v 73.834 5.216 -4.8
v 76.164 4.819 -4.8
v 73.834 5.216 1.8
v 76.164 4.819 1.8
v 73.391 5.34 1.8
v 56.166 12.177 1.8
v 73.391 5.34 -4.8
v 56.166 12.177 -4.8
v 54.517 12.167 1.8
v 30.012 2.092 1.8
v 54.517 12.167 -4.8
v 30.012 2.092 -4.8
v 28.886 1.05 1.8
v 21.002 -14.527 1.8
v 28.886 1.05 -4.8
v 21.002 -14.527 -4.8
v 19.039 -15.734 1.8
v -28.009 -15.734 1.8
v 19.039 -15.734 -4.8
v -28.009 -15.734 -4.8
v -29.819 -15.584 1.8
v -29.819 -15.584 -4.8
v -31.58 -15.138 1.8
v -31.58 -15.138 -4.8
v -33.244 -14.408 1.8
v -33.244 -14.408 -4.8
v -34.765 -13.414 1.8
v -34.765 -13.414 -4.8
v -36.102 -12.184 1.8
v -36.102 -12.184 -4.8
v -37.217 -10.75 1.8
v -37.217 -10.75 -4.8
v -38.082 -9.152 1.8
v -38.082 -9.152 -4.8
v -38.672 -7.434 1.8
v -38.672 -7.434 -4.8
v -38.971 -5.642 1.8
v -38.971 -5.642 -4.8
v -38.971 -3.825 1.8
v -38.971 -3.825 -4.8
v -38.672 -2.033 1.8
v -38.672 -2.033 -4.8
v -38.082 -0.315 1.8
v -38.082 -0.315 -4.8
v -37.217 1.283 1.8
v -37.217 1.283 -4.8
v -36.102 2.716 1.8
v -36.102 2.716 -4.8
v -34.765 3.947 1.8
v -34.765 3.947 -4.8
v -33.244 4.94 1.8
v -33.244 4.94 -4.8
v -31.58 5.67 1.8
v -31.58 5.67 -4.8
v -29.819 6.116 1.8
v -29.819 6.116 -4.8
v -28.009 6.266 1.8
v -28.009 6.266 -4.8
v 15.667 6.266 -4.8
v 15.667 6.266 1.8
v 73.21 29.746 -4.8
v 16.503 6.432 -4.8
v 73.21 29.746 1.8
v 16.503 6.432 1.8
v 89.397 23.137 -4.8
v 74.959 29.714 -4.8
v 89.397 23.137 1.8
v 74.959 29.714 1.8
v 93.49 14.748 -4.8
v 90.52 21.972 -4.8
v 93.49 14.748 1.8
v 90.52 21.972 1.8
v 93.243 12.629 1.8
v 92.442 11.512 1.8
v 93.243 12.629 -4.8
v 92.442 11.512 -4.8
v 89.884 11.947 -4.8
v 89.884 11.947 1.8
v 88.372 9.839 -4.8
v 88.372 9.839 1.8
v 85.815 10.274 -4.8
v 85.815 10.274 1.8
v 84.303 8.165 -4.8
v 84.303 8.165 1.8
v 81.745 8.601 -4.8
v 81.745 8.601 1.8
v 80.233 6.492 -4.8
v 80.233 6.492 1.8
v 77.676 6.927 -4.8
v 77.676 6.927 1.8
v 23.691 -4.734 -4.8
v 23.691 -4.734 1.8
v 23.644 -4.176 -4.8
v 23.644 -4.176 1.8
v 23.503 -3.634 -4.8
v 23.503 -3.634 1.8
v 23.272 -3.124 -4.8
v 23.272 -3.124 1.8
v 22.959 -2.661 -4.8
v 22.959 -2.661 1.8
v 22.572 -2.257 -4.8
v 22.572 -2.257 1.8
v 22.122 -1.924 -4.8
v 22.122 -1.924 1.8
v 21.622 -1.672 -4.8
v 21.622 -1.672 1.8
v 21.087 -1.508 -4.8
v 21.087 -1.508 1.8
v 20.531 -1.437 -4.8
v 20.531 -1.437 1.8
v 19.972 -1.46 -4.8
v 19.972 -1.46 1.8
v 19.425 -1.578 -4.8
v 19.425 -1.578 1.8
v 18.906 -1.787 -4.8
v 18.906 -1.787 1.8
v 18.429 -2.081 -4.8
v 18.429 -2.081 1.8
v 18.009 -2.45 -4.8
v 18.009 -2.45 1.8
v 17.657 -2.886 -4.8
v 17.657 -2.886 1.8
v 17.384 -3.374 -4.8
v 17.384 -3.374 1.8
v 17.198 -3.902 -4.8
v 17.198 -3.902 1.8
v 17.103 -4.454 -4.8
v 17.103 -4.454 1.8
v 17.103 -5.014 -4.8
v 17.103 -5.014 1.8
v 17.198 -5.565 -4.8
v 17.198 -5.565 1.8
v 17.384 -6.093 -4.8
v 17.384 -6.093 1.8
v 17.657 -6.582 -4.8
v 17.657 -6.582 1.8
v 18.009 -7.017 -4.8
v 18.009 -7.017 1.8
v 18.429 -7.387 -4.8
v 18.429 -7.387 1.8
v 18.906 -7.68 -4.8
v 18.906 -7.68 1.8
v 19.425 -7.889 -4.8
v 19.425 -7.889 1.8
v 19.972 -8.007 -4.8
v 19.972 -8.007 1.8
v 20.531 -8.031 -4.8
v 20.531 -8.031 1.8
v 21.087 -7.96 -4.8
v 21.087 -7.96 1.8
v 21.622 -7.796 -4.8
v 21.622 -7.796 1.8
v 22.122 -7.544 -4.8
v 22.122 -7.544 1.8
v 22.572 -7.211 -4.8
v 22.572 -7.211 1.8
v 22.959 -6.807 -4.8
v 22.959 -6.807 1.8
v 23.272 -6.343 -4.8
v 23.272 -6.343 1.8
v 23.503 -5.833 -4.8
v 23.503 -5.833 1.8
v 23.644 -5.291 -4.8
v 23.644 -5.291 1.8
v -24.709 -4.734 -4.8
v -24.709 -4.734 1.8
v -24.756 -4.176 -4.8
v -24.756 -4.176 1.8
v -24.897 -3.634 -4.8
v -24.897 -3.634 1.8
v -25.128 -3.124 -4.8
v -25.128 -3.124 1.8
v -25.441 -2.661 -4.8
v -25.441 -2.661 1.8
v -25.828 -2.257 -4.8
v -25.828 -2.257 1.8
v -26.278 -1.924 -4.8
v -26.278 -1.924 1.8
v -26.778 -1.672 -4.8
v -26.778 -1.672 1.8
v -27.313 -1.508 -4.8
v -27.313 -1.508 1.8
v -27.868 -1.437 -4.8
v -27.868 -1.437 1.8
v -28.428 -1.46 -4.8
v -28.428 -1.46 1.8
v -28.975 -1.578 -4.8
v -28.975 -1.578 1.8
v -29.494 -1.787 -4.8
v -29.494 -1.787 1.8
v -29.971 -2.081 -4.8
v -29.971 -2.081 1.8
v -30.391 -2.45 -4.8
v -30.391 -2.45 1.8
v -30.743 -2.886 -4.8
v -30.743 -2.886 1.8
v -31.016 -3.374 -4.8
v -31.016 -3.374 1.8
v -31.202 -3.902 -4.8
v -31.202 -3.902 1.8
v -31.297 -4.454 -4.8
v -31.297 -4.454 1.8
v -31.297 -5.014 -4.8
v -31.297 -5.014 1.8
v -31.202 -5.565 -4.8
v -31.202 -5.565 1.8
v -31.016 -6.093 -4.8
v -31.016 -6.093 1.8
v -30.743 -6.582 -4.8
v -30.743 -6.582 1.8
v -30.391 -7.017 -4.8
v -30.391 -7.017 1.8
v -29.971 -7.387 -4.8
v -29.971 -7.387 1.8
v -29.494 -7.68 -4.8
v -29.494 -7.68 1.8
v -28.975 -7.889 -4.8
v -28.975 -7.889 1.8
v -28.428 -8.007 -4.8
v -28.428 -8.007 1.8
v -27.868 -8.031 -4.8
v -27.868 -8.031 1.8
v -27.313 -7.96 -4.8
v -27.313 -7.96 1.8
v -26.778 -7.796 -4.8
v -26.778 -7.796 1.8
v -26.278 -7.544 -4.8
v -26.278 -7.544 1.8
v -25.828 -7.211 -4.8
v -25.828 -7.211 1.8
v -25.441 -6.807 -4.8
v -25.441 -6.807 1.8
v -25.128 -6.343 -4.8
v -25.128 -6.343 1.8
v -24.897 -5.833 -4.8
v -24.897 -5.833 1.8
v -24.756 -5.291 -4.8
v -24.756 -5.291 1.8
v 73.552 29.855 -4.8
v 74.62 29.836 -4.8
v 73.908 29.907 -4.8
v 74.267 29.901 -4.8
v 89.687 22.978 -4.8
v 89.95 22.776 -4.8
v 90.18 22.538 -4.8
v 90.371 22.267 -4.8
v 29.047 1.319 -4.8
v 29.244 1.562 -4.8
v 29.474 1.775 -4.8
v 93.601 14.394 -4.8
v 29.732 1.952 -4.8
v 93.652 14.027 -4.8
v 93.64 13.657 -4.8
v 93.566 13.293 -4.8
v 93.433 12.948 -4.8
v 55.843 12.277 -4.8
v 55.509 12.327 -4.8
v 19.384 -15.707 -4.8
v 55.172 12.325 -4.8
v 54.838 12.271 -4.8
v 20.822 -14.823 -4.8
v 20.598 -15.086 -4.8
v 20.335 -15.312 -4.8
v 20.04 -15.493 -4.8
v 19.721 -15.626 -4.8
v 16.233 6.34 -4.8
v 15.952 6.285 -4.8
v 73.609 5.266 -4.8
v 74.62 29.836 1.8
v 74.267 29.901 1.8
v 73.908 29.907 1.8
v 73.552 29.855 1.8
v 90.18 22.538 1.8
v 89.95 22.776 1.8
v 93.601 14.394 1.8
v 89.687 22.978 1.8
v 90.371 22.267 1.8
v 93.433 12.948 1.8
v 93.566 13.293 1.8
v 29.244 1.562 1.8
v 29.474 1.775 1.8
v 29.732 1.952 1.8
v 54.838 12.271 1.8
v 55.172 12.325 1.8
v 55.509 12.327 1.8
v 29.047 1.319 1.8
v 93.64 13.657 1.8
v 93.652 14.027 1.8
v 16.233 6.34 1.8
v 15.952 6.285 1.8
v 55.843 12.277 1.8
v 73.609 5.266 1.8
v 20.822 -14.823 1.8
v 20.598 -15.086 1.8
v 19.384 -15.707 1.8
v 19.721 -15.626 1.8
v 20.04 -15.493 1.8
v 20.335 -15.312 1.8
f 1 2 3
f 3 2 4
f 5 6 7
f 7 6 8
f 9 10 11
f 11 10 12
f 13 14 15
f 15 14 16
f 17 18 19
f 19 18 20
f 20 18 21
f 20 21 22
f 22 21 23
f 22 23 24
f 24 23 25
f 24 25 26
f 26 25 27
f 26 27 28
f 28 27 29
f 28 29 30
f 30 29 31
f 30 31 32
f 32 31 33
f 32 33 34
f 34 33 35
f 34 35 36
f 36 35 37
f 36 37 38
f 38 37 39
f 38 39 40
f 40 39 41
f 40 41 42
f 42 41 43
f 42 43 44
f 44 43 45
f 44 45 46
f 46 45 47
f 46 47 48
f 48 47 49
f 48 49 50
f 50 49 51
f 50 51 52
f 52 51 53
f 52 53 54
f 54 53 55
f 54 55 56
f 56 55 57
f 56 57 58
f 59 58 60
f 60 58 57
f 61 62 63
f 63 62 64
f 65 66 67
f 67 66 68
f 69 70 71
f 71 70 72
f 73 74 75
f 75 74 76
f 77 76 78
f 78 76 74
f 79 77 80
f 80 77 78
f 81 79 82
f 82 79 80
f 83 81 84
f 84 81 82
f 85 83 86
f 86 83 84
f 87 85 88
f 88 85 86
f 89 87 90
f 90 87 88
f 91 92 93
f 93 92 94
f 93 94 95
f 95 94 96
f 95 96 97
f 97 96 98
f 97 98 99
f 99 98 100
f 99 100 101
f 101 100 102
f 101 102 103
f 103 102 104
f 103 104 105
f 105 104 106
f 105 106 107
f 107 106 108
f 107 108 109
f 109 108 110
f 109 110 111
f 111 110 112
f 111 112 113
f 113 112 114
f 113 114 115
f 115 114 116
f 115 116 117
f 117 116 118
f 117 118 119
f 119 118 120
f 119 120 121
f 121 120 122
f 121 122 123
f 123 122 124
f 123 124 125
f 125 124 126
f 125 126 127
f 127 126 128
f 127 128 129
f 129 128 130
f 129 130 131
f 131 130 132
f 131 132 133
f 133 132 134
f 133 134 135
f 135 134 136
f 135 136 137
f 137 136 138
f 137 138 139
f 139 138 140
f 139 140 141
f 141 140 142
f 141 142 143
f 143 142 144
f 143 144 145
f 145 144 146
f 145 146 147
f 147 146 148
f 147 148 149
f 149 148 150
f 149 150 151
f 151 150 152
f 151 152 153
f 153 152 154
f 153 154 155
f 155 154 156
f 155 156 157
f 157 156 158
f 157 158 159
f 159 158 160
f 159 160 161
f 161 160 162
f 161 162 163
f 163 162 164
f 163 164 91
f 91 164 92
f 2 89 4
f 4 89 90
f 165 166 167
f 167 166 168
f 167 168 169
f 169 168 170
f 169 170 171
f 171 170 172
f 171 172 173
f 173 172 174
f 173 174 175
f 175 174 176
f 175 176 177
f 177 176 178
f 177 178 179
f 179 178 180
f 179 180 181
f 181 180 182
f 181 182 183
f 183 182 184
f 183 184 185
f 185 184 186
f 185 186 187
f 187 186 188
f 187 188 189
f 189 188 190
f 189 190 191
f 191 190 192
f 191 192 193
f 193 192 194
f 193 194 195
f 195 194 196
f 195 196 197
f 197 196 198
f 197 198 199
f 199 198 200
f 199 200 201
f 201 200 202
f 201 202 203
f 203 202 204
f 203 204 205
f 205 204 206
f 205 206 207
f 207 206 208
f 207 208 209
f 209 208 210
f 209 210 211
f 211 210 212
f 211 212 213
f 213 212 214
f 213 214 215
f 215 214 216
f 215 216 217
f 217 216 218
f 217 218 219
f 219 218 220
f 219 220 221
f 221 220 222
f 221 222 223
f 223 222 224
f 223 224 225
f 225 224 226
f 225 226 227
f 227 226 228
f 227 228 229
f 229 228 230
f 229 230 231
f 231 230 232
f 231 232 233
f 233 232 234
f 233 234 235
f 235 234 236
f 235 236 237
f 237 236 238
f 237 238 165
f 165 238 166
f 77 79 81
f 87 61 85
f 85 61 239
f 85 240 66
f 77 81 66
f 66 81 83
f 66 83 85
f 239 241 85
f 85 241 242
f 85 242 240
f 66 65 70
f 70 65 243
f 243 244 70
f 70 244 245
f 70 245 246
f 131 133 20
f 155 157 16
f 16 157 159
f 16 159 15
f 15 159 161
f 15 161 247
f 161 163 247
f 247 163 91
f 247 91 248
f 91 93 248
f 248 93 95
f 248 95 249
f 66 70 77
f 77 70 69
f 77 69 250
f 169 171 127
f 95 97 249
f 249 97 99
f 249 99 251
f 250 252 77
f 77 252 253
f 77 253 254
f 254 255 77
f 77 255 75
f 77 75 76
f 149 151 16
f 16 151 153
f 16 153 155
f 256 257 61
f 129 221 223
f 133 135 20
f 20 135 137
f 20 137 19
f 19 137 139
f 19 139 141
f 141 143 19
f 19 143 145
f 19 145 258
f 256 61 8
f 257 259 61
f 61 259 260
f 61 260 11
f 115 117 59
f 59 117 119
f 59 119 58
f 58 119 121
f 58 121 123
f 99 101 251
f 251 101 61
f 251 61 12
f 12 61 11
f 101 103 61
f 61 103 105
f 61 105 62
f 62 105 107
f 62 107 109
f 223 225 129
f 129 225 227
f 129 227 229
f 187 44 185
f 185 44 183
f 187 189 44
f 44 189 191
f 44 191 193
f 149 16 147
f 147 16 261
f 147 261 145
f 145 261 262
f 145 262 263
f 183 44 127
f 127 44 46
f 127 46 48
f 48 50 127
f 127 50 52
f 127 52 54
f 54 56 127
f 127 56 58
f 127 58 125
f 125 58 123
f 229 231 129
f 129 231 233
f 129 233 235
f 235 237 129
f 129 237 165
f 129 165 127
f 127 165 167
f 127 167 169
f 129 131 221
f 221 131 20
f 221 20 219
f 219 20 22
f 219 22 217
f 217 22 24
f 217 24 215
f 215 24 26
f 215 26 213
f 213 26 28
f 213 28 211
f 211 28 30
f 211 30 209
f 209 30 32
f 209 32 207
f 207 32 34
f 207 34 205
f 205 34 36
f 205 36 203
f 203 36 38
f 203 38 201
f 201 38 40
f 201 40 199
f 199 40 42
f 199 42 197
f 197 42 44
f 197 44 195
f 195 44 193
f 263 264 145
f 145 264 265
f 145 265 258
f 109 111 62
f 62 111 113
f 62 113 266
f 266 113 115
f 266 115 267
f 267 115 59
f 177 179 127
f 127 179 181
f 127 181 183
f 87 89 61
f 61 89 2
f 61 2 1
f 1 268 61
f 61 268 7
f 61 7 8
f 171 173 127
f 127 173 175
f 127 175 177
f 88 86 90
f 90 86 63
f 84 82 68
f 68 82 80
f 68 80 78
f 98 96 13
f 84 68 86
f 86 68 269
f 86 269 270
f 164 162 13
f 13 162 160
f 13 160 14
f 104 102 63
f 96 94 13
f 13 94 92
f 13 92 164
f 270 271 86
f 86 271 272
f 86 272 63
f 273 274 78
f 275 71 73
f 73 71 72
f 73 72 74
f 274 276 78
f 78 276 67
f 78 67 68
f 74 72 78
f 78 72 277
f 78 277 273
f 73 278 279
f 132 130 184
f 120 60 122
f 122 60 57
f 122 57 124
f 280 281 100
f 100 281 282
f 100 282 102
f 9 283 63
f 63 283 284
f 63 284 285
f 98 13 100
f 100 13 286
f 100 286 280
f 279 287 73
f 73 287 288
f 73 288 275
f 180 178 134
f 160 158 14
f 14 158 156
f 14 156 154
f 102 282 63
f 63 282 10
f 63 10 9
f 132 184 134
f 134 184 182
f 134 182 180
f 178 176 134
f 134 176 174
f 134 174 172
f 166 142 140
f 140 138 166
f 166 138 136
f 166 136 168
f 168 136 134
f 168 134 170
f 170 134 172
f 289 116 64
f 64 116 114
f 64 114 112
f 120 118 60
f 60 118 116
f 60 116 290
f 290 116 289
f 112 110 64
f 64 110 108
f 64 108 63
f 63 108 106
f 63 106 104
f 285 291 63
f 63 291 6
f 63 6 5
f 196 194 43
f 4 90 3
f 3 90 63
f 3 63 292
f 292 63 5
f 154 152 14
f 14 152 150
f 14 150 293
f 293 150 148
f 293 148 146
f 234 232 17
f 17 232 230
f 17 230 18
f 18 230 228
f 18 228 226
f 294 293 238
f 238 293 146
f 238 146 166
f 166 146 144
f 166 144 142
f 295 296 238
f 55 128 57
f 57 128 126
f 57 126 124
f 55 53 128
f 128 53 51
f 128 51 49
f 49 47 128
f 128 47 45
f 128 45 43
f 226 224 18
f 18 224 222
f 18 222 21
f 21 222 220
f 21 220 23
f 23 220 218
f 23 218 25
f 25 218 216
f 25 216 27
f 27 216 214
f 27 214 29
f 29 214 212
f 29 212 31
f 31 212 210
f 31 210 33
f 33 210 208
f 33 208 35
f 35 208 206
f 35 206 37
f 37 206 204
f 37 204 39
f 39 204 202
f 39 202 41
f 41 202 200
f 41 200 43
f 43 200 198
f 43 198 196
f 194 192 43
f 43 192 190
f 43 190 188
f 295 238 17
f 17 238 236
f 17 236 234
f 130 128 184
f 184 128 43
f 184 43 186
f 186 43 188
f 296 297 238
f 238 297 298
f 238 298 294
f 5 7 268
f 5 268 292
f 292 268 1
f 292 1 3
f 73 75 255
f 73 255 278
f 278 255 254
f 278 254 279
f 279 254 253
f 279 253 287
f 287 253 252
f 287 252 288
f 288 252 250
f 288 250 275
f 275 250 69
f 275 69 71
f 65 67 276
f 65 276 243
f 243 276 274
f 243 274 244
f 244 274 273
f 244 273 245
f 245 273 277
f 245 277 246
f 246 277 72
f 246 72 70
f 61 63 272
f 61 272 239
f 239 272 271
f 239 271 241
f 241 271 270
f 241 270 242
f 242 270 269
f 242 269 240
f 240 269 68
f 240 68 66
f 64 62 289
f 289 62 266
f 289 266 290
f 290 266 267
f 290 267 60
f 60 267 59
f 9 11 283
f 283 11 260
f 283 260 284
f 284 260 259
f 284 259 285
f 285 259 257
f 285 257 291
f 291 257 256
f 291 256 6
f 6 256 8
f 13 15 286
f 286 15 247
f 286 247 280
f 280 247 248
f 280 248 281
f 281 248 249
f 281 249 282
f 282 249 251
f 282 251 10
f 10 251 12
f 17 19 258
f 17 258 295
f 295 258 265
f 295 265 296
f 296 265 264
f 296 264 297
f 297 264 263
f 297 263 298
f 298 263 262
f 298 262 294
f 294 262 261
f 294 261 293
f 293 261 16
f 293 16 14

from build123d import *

# Parameters (mm, degrees)
SKETCH_1_R      = 1.5
EXTRUDE_2_DEPTH = 3
FILLET_1_R      = 1
SCALE_1_SCALE   = 2.2


with BuildPart() as part:
    # Эскиз1 → Бобышка-Вытянуть2 (new body)
    with BuildSketch(Plane.XY):
        with BuildLine():
            Line((20.05, 5), (0, 5))
            ThreePointArc((0, 5), (-5, 0), (0, -5))
            Line((0, -5), (22, -5))
            Line((22, -5), (26.028944646, 2.961014192))
            Line((26.028944646, 2.961014192), (37.885430155, 7.835804738))
            Line((37.885430155, 7.835804738), (46.188488025, 4.540007042))
            Line((46.188488025, 4.540007042), (47.351030887, 4.342221563))
            Line((47.351030887, 4.342221563), (48.038244482, 5.300533868))
            Line((48.038244482, 5.300533868), (49.200787343, 5.102748388))
            Line((49.200787343, 5.102748388), (49.888000938, 6.061060693))
            Line((49.888000938, 6.061060693), (51.050543799, 5.863275214))
            Line((51.050543799, 5.863275214), (51.737757394, 6.821587519))
            Line((51.737757394, 6.821587519), (52.900300256, 6.623802039))
            Line((52.900300256, 6.623802039), (53.587513851, 7.582114344))
            Line((53.587513851, 7.582114344), (54.750056712, 7.384328864))
            Line((54.750056712, 7.384328864), (55.437270307, 8.34264117))
            Line((55.437270307, 8.34264117), (53.72608495, 12.504593197))
            Line((53.72608495, 12.504593197), (46.409029503, 15.837507263))
            Line((46.409029503, 15.837507263), (20.05, 5))
        make_face()
        Circle(SKETCH_1_R, mode=Mode.SUBTRACT)
        with Locations((22, 0)):
            Circle(SKETCH_1_R, mode=Mode.SUBTRACT)
    extrude(amount=-EXTRUDE_2_DEPTH)

    # Скругление1
    fillet_1_edges = [part.edges().sort_by_distance(p)[0] for p in [
        (46.188488025, 4.540007042, -1.5),
        (37.885430155, 7.835804738, -1.5),
        (26.028944646, 2.961014192, -1.5),
        (22, -5, -1.5),
        (20.05, 5, -1.5),
        (46.409029503, 15.837507263, -1.5),
        (53.72608495, 12.504593197, -1.5),
        (55.437270307, 8.34264117, -1.5),
    ]]
    fillet(fillet_1_edges, radius=FILLET_1_R)


with BuildPart() as part_1:
    # Масштаб1: scaled about (23.340461949, 3.94478372, -1.5)
    add(part.part.scale(SCALE_1_SCALE).moved(Location((-28.008554339, -4.733740464, 1.8))))


solid = part_1.part
